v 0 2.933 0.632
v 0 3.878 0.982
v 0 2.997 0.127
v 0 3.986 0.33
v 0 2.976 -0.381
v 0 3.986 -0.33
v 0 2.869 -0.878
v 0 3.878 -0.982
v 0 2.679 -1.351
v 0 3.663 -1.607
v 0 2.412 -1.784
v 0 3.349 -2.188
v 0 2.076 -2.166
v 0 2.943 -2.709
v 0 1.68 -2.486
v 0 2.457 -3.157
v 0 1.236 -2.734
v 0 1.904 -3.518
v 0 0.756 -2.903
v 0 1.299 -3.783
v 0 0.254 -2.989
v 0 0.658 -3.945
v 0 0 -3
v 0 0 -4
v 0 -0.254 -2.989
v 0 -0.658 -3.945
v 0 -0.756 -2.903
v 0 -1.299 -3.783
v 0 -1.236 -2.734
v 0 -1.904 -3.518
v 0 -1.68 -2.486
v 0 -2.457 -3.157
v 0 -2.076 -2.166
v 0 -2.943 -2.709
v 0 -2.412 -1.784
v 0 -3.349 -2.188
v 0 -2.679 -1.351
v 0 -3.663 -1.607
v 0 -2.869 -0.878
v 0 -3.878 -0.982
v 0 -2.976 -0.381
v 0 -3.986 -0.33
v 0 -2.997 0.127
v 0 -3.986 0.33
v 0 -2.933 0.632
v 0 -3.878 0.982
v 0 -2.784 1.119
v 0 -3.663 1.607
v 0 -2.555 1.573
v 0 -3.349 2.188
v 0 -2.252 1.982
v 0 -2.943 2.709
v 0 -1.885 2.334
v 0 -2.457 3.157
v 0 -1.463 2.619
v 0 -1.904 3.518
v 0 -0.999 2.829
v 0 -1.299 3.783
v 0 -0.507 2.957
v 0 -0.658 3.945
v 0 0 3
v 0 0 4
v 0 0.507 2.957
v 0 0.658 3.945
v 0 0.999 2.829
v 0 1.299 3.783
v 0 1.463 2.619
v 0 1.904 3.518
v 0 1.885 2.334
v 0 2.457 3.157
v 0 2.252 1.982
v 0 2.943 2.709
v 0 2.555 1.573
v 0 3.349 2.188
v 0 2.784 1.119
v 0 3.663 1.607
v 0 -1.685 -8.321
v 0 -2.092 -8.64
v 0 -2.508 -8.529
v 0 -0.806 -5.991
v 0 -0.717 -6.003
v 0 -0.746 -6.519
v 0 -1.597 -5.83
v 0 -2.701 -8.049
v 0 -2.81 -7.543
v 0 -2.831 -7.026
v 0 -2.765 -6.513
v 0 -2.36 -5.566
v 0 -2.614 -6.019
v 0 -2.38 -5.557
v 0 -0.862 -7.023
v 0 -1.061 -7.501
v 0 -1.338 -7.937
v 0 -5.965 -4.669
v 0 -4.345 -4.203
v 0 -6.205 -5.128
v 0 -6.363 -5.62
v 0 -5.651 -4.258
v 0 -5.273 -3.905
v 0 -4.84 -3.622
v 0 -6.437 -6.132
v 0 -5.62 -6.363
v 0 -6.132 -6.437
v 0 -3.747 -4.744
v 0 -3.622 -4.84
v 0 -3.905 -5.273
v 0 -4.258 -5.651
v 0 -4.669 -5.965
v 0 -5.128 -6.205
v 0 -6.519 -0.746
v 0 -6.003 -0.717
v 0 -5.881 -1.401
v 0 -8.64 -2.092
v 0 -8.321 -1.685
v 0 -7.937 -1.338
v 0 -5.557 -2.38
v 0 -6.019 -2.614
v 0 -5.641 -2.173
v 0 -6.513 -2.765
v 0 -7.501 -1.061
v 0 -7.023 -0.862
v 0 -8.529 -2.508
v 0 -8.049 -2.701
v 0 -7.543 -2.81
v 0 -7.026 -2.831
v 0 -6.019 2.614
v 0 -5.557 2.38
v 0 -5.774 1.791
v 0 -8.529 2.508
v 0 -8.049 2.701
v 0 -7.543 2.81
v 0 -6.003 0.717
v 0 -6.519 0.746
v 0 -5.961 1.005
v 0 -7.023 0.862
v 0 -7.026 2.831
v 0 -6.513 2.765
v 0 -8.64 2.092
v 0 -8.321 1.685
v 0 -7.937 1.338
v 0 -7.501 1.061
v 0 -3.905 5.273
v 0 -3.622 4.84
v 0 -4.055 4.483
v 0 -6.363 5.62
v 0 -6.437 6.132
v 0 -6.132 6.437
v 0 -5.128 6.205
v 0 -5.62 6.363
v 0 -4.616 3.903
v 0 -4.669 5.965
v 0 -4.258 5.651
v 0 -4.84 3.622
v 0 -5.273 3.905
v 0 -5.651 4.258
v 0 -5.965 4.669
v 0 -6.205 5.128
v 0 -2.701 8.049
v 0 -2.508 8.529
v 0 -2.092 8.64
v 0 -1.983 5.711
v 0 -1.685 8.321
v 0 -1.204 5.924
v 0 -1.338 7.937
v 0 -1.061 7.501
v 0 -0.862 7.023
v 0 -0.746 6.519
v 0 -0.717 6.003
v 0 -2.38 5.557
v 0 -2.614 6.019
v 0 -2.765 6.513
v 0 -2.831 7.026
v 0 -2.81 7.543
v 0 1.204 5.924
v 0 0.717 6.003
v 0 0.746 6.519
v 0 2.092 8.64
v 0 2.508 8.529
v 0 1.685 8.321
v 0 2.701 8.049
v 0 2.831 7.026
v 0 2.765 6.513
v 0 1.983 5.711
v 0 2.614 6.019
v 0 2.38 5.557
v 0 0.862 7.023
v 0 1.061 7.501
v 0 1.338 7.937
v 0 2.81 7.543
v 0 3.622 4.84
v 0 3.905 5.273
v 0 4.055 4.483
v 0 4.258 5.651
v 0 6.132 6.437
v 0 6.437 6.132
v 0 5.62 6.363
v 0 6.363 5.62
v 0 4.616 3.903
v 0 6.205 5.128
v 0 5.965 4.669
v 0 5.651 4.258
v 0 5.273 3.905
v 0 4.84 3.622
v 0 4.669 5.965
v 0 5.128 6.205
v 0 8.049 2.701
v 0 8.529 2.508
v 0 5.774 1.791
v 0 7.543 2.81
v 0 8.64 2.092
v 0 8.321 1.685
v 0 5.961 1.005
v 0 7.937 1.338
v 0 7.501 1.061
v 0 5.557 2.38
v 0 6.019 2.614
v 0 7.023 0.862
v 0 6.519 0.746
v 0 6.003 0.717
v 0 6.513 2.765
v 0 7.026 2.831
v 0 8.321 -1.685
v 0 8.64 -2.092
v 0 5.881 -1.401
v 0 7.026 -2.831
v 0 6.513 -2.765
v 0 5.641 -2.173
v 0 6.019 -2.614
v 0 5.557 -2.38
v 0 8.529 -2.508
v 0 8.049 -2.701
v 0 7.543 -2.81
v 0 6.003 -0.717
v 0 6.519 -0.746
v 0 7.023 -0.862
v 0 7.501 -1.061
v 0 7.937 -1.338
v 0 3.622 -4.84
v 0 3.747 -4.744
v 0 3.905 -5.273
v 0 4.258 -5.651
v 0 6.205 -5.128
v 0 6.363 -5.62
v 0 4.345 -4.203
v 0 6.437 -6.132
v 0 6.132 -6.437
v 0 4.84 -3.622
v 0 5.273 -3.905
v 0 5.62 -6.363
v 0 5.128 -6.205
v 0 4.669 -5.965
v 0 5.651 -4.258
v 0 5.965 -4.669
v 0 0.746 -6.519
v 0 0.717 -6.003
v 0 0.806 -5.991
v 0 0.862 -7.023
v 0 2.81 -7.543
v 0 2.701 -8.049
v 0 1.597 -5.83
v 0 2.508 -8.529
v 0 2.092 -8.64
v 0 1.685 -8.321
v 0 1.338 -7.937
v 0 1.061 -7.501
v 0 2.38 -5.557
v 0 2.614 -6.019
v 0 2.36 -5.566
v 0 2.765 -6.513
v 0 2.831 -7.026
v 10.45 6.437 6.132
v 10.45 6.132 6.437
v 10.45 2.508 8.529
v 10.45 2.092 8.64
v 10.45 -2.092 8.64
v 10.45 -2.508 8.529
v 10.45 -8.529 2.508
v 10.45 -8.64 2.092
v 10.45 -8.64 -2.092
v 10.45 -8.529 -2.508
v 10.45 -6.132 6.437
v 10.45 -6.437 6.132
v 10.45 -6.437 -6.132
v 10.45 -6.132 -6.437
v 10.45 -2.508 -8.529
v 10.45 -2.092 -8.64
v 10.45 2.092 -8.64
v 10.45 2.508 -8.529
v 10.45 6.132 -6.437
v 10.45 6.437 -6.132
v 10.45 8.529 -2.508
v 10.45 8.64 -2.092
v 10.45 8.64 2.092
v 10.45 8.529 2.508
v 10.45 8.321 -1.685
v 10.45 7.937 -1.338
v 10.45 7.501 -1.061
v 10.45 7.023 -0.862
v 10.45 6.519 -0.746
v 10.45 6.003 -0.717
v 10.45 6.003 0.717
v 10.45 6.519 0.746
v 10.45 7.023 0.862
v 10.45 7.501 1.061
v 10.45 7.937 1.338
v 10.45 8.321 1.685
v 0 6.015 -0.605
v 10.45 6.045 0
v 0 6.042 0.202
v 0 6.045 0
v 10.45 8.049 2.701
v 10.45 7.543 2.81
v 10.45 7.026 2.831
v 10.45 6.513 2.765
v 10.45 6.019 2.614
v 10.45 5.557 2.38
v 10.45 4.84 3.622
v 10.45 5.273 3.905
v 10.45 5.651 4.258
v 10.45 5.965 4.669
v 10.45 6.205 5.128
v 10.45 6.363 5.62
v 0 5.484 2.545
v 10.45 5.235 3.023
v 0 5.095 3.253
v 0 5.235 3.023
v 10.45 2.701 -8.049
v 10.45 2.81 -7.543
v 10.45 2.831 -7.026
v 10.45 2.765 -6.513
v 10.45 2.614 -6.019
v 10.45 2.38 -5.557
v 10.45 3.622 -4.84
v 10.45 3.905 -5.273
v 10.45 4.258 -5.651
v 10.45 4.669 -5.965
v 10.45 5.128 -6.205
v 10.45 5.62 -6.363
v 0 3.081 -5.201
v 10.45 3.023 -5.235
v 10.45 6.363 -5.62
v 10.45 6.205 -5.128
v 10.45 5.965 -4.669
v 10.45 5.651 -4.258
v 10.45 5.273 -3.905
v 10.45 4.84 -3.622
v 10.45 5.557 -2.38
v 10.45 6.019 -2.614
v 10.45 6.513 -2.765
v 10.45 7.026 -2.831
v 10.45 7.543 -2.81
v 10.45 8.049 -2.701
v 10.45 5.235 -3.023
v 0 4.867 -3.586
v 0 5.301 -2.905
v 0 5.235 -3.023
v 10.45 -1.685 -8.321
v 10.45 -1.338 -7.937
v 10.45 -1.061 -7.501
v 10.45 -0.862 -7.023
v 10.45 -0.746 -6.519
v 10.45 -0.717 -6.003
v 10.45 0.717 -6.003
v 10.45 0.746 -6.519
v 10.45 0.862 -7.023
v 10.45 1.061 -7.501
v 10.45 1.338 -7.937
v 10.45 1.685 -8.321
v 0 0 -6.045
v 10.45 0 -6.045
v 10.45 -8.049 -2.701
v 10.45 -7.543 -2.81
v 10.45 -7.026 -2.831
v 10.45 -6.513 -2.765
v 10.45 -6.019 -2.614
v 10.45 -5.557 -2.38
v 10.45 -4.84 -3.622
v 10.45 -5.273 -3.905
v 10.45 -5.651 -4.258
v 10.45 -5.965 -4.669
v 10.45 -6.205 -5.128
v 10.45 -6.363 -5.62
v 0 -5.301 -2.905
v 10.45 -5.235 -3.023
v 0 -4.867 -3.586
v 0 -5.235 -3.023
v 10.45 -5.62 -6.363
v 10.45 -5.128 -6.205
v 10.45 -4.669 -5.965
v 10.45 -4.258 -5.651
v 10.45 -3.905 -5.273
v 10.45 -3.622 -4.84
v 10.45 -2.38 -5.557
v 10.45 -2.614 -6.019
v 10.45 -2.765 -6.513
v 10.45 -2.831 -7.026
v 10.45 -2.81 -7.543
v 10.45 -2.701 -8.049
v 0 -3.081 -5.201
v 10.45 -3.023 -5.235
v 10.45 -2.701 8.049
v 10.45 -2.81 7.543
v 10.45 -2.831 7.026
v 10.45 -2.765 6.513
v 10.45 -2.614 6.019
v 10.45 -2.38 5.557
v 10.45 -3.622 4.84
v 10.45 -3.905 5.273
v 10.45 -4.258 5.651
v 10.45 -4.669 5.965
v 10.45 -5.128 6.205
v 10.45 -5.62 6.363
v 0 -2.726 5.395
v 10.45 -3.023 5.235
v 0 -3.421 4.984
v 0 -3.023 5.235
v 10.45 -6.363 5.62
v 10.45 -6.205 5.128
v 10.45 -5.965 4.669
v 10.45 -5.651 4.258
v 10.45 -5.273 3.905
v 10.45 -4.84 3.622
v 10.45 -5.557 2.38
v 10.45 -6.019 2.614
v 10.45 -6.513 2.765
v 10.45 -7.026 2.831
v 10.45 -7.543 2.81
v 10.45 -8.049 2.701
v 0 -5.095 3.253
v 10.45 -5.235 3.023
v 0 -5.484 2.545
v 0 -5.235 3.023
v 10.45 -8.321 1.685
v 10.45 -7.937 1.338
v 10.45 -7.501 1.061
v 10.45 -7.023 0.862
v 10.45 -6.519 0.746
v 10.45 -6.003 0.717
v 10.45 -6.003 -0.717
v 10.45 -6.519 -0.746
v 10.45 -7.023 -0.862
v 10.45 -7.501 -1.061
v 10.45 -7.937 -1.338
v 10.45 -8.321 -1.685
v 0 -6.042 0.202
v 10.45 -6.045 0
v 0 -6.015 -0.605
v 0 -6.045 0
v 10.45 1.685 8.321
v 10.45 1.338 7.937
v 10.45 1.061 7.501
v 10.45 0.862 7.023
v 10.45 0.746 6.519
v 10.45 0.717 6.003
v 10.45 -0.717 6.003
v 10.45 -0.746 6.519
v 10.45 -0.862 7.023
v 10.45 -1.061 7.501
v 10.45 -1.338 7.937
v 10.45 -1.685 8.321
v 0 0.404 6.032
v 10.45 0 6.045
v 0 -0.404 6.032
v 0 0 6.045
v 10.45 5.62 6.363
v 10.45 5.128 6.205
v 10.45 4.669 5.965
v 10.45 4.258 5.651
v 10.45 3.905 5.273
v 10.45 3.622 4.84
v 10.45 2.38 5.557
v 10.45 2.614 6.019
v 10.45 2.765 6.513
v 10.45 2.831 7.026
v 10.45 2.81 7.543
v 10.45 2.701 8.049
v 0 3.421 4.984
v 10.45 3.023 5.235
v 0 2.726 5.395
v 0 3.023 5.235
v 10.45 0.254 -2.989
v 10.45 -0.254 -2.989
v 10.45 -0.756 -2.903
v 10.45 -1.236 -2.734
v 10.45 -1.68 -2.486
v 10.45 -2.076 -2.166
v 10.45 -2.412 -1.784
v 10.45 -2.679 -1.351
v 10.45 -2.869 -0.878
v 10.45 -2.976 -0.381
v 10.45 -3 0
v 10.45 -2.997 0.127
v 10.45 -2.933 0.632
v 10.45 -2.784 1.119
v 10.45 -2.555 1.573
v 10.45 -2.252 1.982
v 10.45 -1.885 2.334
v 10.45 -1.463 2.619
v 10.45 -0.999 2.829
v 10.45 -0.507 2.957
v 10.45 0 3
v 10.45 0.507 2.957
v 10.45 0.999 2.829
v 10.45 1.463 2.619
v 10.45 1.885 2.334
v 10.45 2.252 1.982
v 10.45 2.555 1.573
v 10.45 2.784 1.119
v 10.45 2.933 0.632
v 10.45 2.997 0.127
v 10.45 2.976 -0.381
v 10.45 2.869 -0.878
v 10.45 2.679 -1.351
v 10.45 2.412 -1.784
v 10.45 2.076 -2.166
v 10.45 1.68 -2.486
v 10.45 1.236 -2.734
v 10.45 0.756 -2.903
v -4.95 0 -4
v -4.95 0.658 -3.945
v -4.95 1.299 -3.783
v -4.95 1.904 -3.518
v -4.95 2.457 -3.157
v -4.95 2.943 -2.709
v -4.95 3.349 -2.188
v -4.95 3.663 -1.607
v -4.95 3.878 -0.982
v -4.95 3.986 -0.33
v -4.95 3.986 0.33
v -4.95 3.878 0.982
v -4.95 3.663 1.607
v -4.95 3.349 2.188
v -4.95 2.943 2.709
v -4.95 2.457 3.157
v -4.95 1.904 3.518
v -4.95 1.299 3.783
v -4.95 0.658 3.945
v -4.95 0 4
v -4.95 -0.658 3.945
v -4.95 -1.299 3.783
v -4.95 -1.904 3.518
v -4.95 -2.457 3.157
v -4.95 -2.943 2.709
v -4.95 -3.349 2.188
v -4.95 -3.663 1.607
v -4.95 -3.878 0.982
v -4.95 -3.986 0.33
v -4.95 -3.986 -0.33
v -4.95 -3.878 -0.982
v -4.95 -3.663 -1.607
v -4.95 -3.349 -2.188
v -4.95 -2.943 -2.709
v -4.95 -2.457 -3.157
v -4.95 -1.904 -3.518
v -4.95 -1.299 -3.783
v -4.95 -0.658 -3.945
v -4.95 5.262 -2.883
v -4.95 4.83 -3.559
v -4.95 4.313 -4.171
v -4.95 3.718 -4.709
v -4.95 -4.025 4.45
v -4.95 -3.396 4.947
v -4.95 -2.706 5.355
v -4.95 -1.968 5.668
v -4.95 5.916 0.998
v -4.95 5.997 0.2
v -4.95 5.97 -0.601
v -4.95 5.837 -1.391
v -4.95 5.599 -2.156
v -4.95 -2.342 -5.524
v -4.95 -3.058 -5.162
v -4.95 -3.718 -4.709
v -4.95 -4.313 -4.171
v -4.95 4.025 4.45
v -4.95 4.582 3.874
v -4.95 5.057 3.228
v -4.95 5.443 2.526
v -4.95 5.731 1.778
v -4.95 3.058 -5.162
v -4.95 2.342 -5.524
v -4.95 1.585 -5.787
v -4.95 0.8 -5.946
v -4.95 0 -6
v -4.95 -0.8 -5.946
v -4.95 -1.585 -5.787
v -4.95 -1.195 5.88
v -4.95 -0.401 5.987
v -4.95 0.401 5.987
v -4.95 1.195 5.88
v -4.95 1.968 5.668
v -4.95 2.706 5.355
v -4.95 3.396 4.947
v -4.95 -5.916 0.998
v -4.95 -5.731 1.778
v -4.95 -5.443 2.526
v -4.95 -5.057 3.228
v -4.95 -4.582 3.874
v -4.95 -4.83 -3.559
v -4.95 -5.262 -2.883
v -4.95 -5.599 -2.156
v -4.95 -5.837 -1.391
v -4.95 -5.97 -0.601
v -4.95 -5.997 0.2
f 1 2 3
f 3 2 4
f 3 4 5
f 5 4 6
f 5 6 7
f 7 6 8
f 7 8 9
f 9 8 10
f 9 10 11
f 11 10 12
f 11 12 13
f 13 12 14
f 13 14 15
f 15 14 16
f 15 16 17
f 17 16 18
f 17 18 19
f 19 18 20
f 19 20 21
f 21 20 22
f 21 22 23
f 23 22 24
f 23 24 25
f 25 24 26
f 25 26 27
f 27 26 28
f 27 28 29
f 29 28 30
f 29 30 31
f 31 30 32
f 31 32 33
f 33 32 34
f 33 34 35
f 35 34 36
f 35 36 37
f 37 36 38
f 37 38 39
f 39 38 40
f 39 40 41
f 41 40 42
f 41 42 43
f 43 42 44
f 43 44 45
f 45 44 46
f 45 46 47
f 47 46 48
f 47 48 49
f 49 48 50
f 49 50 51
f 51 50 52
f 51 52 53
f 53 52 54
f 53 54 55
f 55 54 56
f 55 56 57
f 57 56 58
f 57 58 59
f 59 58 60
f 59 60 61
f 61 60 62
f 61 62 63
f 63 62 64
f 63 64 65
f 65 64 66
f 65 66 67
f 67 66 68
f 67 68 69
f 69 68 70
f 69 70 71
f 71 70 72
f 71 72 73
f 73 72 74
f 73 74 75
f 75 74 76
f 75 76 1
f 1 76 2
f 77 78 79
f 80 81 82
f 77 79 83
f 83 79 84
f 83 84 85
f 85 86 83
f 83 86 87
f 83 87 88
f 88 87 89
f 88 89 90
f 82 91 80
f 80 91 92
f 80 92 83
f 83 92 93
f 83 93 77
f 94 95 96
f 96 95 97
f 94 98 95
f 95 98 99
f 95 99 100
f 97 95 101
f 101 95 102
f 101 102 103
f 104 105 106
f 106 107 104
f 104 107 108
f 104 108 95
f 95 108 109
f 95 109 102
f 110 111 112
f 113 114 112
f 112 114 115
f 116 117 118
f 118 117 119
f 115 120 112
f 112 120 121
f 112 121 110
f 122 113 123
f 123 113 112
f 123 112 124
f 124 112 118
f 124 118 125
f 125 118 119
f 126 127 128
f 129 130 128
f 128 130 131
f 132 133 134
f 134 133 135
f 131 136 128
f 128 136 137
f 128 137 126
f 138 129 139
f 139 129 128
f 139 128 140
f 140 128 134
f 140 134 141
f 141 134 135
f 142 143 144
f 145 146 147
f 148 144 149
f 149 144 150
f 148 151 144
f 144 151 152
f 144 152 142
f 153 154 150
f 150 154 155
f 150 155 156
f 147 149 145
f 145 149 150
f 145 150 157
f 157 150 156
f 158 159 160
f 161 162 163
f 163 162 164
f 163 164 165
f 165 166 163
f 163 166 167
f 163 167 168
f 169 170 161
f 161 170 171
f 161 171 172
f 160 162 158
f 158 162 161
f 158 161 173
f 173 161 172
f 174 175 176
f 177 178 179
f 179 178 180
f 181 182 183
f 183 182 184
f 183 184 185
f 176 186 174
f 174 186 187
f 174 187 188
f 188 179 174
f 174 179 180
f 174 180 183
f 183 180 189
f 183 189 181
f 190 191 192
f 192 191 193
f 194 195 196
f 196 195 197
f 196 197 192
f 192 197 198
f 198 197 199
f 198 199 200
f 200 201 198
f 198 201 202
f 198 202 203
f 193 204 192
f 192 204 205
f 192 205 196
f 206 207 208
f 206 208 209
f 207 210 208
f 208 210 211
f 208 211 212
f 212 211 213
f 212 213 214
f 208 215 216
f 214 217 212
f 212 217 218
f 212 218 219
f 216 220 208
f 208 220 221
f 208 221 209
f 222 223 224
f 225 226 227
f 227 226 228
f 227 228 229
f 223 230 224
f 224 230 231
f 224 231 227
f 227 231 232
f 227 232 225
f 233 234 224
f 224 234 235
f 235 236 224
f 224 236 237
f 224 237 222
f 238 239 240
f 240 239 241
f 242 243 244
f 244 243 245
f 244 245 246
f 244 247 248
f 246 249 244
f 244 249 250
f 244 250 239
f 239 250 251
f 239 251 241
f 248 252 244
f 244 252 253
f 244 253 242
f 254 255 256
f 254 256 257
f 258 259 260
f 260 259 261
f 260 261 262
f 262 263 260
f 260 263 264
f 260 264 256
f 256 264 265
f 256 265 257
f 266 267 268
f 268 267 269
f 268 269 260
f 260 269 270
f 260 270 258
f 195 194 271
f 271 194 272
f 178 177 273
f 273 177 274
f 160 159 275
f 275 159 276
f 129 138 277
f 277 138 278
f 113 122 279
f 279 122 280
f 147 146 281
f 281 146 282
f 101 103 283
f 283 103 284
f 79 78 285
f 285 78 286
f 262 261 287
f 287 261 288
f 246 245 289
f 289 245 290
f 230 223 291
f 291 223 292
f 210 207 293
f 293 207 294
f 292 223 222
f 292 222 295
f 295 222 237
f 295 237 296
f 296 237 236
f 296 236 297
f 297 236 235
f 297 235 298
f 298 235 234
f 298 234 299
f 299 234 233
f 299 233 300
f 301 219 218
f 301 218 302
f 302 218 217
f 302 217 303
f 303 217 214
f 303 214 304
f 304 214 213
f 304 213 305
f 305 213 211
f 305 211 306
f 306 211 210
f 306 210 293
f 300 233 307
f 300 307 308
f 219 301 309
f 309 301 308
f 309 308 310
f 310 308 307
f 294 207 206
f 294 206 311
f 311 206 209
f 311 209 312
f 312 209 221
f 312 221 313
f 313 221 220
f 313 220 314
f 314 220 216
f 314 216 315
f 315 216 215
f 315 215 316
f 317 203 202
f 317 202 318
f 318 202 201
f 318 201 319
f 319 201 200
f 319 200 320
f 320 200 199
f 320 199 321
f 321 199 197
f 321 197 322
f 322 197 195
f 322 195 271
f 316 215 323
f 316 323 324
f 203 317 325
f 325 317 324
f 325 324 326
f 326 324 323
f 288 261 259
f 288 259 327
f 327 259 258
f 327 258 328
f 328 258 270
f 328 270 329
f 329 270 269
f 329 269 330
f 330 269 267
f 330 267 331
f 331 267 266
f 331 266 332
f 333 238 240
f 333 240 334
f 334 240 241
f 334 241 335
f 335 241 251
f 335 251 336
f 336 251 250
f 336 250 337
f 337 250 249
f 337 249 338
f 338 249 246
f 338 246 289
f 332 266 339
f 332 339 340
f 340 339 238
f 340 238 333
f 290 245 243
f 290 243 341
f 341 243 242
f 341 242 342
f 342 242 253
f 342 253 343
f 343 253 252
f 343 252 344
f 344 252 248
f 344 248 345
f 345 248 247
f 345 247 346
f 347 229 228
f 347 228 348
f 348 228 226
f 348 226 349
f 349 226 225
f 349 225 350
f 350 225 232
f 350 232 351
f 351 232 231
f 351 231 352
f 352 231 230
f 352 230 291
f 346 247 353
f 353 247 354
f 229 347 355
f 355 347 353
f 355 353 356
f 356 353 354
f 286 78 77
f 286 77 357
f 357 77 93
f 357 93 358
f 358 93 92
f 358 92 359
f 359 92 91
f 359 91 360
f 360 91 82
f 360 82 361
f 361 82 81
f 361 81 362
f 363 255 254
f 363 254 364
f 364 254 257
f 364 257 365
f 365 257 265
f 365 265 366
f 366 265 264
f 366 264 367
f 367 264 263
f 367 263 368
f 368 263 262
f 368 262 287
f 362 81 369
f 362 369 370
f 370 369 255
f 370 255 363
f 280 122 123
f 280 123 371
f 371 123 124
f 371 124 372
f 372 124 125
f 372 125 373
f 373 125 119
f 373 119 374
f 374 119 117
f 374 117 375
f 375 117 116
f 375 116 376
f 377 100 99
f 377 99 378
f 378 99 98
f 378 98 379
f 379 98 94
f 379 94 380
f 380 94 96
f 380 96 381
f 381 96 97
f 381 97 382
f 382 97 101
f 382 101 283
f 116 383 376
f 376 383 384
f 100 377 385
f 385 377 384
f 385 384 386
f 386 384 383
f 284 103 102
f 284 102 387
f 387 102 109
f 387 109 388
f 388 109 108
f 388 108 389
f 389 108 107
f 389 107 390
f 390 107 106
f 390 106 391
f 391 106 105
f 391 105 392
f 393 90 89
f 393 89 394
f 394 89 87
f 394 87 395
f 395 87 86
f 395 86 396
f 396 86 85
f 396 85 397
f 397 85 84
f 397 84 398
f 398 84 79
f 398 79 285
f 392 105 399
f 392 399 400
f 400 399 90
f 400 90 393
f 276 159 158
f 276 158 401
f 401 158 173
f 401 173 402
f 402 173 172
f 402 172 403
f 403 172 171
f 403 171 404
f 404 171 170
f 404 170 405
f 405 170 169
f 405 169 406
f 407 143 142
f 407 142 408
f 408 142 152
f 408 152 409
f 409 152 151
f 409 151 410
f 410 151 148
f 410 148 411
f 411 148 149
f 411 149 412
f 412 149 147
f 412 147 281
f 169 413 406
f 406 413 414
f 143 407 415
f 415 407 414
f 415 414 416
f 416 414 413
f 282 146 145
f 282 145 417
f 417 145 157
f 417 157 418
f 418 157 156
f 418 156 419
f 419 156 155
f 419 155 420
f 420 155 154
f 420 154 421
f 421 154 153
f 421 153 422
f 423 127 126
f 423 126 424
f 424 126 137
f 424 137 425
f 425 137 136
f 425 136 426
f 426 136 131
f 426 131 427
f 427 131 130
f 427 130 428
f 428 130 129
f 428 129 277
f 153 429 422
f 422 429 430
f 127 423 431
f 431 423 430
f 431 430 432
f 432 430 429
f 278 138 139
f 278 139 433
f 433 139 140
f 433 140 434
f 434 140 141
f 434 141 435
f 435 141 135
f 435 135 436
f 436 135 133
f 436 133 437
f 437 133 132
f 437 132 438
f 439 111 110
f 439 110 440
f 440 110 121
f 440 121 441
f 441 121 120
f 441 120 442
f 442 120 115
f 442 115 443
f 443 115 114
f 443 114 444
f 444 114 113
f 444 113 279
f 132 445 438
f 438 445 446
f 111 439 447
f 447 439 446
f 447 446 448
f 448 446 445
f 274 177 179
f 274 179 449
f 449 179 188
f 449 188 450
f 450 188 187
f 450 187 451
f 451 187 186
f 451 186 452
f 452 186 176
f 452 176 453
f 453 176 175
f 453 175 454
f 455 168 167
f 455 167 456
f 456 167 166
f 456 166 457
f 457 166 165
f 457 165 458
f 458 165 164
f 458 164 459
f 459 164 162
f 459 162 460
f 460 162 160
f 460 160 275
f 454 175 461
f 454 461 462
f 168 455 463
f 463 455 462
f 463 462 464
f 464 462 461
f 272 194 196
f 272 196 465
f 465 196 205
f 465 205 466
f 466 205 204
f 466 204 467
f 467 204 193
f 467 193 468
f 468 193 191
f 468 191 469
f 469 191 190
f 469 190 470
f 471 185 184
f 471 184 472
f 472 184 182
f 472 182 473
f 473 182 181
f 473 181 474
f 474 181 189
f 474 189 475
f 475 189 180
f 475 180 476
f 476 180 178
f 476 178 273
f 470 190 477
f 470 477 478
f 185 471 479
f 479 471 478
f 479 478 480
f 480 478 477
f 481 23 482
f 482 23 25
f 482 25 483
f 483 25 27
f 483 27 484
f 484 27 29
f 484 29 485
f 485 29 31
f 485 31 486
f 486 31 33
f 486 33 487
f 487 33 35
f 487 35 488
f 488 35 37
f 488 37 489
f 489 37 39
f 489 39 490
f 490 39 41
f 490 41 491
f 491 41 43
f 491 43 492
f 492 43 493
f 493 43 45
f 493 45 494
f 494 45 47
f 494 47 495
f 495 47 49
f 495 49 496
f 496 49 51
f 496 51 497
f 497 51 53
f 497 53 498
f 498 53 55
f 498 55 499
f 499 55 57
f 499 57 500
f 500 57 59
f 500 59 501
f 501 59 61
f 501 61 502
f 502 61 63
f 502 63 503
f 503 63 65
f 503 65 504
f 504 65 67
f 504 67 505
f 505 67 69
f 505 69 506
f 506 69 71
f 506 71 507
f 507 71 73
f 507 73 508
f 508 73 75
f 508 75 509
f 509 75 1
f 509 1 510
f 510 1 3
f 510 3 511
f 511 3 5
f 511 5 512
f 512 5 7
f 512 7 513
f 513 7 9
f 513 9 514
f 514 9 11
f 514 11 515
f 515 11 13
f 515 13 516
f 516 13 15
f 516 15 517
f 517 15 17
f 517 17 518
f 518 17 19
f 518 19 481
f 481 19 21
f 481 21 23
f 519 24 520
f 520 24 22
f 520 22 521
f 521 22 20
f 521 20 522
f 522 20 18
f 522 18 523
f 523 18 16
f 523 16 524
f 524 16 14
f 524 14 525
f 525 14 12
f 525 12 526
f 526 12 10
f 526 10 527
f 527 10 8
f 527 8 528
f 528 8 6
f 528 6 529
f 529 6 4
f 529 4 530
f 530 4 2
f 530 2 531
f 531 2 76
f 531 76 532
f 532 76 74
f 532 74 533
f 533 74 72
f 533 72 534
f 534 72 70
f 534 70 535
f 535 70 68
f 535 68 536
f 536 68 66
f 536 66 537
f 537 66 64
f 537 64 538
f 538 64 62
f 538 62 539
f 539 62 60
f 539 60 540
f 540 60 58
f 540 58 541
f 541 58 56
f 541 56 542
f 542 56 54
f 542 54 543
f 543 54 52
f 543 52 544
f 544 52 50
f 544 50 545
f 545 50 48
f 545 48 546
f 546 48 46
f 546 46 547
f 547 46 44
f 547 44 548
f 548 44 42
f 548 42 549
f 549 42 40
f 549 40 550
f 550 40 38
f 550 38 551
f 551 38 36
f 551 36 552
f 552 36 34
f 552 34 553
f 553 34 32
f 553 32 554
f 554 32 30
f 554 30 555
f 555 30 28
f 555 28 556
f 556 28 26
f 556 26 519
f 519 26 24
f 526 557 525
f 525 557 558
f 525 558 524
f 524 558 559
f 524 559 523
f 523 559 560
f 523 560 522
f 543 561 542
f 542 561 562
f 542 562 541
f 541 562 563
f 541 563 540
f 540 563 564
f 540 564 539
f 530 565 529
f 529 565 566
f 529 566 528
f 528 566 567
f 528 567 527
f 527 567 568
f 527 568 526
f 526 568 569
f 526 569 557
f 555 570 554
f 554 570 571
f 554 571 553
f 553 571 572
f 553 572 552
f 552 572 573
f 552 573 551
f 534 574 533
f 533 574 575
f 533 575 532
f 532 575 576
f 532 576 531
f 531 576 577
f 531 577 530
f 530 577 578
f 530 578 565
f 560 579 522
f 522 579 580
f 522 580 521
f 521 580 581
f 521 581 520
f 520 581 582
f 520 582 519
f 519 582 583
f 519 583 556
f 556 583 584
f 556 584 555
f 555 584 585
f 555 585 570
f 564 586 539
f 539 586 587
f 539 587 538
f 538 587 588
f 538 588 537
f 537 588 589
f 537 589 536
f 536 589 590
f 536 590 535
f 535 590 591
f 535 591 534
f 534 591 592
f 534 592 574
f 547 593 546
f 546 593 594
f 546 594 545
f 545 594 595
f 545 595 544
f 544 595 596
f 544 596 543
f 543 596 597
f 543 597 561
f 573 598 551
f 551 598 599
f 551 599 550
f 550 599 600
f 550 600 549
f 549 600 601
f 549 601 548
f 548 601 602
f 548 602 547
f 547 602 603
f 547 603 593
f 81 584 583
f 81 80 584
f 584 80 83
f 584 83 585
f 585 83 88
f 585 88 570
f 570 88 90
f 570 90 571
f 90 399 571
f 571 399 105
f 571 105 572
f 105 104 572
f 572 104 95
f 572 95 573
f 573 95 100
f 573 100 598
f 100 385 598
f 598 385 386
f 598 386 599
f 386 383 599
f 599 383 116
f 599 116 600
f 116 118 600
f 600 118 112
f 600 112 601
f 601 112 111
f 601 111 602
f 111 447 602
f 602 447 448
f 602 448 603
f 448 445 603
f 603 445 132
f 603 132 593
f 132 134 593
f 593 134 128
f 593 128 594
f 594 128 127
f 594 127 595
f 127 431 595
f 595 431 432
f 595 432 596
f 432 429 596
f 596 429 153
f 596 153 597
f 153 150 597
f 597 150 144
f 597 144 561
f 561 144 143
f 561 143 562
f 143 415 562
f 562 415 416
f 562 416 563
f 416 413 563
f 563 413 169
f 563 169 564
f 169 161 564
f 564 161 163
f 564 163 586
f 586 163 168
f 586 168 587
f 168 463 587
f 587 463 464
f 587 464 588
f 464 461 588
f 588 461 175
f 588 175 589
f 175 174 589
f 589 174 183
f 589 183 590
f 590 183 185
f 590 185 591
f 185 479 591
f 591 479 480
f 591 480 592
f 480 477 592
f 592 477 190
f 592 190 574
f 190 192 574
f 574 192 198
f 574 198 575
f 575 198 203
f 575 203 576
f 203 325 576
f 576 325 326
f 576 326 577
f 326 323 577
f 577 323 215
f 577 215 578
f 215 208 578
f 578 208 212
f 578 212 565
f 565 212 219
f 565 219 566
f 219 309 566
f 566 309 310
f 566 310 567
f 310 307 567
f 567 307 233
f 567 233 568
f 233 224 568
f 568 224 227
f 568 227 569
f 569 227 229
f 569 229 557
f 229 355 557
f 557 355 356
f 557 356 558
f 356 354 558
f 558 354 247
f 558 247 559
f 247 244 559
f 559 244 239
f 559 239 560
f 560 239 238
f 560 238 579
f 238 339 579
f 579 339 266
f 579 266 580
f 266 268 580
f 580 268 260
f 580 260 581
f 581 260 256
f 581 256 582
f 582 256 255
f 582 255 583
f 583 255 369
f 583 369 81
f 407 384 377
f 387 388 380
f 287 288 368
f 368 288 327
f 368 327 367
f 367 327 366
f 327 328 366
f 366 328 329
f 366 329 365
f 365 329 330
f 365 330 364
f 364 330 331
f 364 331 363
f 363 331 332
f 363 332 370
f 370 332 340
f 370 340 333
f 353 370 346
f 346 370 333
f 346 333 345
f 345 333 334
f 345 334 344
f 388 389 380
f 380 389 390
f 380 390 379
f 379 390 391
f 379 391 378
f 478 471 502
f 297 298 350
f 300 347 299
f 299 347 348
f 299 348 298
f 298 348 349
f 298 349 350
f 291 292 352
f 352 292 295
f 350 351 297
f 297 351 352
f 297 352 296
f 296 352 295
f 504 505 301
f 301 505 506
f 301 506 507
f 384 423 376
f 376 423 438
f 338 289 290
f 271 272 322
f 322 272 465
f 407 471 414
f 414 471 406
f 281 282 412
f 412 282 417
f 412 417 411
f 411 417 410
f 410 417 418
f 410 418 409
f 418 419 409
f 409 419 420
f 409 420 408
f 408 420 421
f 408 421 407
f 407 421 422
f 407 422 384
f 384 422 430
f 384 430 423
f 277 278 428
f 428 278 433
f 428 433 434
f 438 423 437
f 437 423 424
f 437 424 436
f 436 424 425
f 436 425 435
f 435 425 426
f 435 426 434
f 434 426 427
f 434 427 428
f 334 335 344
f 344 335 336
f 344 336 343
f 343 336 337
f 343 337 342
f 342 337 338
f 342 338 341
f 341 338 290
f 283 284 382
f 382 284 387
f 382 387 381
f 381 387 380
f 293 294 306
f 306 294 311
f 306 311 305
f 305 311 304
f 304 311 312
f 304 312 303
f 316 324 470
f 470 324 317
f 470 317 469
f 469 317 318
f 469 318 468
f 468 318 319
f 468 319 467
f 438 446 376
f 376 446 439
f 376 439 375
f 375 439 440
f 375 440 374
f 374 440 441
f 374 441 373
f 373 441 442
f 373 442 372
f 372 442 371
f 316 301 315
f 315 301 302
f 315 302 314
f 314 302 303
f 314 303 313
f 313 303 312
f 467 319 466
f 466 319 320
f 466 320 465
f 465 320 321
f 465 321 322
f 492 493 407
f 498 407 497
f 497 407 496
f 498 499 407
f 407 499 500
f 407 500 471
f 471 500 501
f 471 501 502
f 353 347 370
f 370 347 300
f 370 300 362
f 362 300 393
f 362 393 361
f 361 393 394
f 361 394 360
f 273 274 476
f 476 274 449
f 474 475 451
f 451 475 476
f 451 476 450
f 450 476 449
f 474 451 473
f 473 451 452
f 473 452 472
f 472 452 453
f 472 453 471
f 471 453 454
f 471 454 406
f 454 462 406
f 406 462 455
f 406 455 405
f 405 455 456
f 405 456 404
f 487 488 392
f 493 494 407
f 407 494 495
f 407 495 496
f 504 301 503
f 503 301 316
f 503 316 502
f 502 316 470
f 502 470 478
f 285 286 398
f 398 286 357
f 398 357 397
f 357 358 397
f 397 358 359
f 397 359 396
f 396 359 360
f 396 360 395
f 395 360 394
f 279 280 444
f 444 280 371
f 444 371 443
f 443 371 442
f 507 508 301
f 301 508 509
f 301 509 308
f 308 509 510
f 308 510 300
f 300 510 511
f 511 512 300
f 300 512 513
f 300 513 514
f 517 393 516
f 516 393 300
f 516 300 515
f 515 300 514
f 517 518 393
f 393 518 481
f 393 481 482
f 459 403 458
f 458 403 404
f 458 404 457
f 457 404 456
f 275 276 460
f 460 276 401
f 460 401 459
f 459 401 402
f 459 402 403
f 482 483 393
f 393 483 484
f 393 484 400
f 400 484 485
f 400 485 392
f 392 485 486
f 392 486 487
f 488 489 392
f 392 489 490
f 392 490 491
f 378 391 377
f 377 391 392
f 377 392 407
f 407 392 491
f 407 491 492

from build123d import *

# Parameters (mm, degrees)
BASPROSKE_W             = 12.7
BASPROSKE_H             = 8.89
TOOTHCUT_DEPTH          = 18.870484045
TEETHCUTS_COUNT         = 12
TEETHCUTS_ANGLE         = 330
BORSKE_R                = 3
BORE_DEPTH              = 50.8000508
SKETCH2_W               = 2.25
SKETCH2_H               = 17.280564042
CUT_EXTRUDE1_DEPTH      = 18.6238176
CUT_EXTRUDE1_DEPTH_BACK = 18.6238176


with BuildPart() as part:
    # BasProSke → Base-Revolve (revolve)
    with BuildSketch(Plane(origin=(0, 0, 0), x_dir=(1, 0, 0), z_dir=(0, 1, 0)), mode=Mode.PRIVATE) as base_revolve_sk:
        with Locations((6.35, 4.445)):
            Rectangle(BASPROSKE_W, BASPROSKE_H)
    revolve(base_revolve_sk.sketch.rotate(Axis((-10, 0, 0), (1, 0, 0)), 180), axis=Axis((-10, 0, 0), (1, 0, 0)))

    # TooCutSke → ToothCut (cut, through all)
    with BuildSketch(Plane(origin=(0, 0, 0), x_dir=(0, 0, -1), z_dir=(1, 0, 0))):
        with BuildLine():
            ThreePointArc((0.717076553, 6.002519826), (0, 6.0452), (-0.717076553, 6.002519826))
            ThreePointArc((-0.717076553, 6.002519826), (-1.069160545, 7.516029346), (-2.121611652, 8.659279483))
            ThreePointArc((-2.121611652, 8.659279483), (0, 8.9154), (2.121611652, 8.659279483))
            ThreePointArc((2.121611652, 8.659279483), (1.069160545, 7.516029346), (0.717076553, 6.002519826))
        make_face()
    toothcut = extrude(amount=TOOTHCUT_DEPTH, mode=Mode.SUBTRACT)

    # TeethCuts: ToothCut ×12 about axis
    teethcuts_axis = Axis((-10, 0, 0), (1, 0, 0))
    for i in range(1, TEETHCUTS_COUNT):
        add(toothcut.rotate(teethcuts_axis, i * TEETHCUTS_ANGLE / (TEETHCUTS_COUNT - 1)), mode=Mode.SUBTRACT)

    # BorSke → Bore (cut, symmetric)
    with BuildSketch(Plane(origin=(0, 0, 0), x_dir=(0, 0, -1), z_dir=(1, 0, 0))):
        with Locations(Location((0, 0, 0), (0, 0, 180))):
            Circle(BORSKE_R)
    extrude(amount=BORE_DEPTH, both=True, mode=Mode.SUBTRACT)

    # Sketch1 → Revolve1 (revolve)
    with BuildSketch(Plane.XY, mode=Mode.PRIVATE) as revolve1_sk:
        Polygon((0, -4), (-4.95, -4), (-4.95, -6), (0, -6.0452), align=None)
    revolve(revolve1_sk.sketch.rotate(Axis((0, 0, 0), (-1, 0, 0)), 270), axis=Axis((0, 0, 0), (-1, 0, 0)))

    # Sketch2 → Cut-Extrude1 (cut, two sides)
    with BuildSketch(Plane.XY) as cut_extrude1_sk:
        with Locations((11.575, 0)):
            Rectangle(SKETCH2_W, SKETCH2_H)
    extrude(amount=CUT_EXTRUDE1_DEPTH, mode=Mode.SUBTRACT)
    extrude(cut_extrude1_sk.sketch, amount=-CUT_EXTRUDE1_DEPTH_BACK, mode=Mode.SUBTRACT)


solid = part.part
